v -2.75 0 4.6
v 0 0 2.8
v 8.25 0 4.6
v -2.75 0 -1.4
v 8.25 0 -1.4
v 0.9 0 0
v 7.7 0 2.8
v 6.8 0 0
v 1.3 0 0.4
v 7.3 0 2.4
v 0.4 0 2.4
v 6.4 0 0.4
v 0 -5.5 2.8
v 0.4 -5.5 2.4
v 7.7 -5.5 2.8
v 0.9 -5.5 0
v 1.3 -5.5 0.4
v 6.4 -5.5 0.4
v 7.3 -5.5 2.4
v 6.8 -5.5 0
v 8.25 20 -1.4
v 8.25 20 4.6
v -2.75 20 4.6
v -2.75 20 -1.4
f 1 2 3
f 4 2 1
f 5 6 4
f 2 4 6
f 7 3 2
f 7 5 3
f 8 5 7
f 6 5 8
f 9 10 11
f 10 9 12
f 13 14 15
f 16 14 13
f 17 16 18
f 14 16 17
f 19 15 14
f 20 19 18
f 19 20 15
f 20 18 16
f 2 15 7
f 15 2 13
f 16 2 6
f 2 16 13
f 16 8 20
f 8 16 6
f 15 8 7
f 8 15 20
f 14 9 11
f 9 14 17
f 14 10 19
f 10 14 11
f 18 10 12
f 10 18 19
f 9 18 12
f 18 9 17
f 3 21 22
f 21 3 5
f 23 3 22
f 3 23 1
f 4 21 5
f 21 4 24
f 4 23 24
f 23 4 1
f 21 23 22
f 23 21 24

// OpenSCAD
// file: Ruler.scad
// RUler

translate([10,10,10]){
Ruler();
}

module Rulers(length=200){
    RulerX();
    RulerY();
    RulerZ();
}
module RulerX(length=200){
    Ruler(length=length);
}

module RulerY(length=200){
    rotate([0,0,90])
        Ruler(length=length);
}

module RulerZ(length=200){
    rotate([0,-90,0])
        Ruler(length=length);
}

module Ruler(length=200){
    for (cm=[0:1:length/10]){
        translate([10*cm,0,0]){
            color("black")
                translate([.1,.4,0])
                    scale([1,1,.05])
                        text(text = str(cm),size=1);

        // Striche
        color("blue"){
            // cm Balken
            cube([.1,2,.1]);

            // untere Linie
            cube([10,.2,.1]);
            
            // mm Balken
            for (mm=[1:1:9]){
                translate([mm,0,0])
                    cube([.1,.6,.1]);
            }

            // 5mm Balken
            translate([5,0,0])
                    cube([.1,1,.1]);
            }
        }
    }
    
}
// main file
//

use <Ruler.scad>;

buchseX=5.5;
buchseAussenY1=7.7;
buchseAussenY2=5.9;
buchseAussenYd=(buchseAussenY1-buchseAussenY2)/2;
buchseInnenY1=6.7;
buchseInnenY2=5.1;
buchseInnenYd=(buchseInnenY1-buchseInnenY2)/2;
buchseZ=2.8;
wandStarke=0.4;

dimensionsMicroUsbStecker=[11,20,6];

// -------------------  Examples ------------------- 

MicroUsbBuchse();
MicroUsbSteckerSpace();
translate([0,-4,0]) Rulers();

// ------------------- Modules ------------------- 
module MicroUsbSteckerSpace(){
    translate([buchseX/2-dimensionsMicroUsbStecker[0]/2,0,-buchseZ/2])
        cube(dimensionsMicroUsbStecker);
}

module MicroUsbBuchse(){

    color("silver")
        rotate([90,0,0])
           linear_extrude(height = buchseX, center = false, convexity = 10, twist = 0)
            difference(){
                polygon(points=[
                         [buchseAussenYd,0],
                         [buchseAussenY2+buchseAussenYd,0],
                         [buchseAussenY1,buchseZ],
                         [0,buchseZ],
                        ],
                        paths=[[0,1,2,3],[4,5,6,7]],
                        convexity=10
                        );
                 translate([wandStarke,wandStarke,0])
                    polygon(points=[
                         [buchseAussenYd,0],
                         [buchseAussenY2+buchseAussenYd-2*wandStarke,0],
                         [buchseAussenY1-2*wandStarke,buchseZ-2*wandStarke],
                         [0,buchseZ-2*wandStarke],
                        ],
                        paths=[[0,1,2,3],[4,5,6,7]],
                        convexity=10
                        );
        }
 
}
